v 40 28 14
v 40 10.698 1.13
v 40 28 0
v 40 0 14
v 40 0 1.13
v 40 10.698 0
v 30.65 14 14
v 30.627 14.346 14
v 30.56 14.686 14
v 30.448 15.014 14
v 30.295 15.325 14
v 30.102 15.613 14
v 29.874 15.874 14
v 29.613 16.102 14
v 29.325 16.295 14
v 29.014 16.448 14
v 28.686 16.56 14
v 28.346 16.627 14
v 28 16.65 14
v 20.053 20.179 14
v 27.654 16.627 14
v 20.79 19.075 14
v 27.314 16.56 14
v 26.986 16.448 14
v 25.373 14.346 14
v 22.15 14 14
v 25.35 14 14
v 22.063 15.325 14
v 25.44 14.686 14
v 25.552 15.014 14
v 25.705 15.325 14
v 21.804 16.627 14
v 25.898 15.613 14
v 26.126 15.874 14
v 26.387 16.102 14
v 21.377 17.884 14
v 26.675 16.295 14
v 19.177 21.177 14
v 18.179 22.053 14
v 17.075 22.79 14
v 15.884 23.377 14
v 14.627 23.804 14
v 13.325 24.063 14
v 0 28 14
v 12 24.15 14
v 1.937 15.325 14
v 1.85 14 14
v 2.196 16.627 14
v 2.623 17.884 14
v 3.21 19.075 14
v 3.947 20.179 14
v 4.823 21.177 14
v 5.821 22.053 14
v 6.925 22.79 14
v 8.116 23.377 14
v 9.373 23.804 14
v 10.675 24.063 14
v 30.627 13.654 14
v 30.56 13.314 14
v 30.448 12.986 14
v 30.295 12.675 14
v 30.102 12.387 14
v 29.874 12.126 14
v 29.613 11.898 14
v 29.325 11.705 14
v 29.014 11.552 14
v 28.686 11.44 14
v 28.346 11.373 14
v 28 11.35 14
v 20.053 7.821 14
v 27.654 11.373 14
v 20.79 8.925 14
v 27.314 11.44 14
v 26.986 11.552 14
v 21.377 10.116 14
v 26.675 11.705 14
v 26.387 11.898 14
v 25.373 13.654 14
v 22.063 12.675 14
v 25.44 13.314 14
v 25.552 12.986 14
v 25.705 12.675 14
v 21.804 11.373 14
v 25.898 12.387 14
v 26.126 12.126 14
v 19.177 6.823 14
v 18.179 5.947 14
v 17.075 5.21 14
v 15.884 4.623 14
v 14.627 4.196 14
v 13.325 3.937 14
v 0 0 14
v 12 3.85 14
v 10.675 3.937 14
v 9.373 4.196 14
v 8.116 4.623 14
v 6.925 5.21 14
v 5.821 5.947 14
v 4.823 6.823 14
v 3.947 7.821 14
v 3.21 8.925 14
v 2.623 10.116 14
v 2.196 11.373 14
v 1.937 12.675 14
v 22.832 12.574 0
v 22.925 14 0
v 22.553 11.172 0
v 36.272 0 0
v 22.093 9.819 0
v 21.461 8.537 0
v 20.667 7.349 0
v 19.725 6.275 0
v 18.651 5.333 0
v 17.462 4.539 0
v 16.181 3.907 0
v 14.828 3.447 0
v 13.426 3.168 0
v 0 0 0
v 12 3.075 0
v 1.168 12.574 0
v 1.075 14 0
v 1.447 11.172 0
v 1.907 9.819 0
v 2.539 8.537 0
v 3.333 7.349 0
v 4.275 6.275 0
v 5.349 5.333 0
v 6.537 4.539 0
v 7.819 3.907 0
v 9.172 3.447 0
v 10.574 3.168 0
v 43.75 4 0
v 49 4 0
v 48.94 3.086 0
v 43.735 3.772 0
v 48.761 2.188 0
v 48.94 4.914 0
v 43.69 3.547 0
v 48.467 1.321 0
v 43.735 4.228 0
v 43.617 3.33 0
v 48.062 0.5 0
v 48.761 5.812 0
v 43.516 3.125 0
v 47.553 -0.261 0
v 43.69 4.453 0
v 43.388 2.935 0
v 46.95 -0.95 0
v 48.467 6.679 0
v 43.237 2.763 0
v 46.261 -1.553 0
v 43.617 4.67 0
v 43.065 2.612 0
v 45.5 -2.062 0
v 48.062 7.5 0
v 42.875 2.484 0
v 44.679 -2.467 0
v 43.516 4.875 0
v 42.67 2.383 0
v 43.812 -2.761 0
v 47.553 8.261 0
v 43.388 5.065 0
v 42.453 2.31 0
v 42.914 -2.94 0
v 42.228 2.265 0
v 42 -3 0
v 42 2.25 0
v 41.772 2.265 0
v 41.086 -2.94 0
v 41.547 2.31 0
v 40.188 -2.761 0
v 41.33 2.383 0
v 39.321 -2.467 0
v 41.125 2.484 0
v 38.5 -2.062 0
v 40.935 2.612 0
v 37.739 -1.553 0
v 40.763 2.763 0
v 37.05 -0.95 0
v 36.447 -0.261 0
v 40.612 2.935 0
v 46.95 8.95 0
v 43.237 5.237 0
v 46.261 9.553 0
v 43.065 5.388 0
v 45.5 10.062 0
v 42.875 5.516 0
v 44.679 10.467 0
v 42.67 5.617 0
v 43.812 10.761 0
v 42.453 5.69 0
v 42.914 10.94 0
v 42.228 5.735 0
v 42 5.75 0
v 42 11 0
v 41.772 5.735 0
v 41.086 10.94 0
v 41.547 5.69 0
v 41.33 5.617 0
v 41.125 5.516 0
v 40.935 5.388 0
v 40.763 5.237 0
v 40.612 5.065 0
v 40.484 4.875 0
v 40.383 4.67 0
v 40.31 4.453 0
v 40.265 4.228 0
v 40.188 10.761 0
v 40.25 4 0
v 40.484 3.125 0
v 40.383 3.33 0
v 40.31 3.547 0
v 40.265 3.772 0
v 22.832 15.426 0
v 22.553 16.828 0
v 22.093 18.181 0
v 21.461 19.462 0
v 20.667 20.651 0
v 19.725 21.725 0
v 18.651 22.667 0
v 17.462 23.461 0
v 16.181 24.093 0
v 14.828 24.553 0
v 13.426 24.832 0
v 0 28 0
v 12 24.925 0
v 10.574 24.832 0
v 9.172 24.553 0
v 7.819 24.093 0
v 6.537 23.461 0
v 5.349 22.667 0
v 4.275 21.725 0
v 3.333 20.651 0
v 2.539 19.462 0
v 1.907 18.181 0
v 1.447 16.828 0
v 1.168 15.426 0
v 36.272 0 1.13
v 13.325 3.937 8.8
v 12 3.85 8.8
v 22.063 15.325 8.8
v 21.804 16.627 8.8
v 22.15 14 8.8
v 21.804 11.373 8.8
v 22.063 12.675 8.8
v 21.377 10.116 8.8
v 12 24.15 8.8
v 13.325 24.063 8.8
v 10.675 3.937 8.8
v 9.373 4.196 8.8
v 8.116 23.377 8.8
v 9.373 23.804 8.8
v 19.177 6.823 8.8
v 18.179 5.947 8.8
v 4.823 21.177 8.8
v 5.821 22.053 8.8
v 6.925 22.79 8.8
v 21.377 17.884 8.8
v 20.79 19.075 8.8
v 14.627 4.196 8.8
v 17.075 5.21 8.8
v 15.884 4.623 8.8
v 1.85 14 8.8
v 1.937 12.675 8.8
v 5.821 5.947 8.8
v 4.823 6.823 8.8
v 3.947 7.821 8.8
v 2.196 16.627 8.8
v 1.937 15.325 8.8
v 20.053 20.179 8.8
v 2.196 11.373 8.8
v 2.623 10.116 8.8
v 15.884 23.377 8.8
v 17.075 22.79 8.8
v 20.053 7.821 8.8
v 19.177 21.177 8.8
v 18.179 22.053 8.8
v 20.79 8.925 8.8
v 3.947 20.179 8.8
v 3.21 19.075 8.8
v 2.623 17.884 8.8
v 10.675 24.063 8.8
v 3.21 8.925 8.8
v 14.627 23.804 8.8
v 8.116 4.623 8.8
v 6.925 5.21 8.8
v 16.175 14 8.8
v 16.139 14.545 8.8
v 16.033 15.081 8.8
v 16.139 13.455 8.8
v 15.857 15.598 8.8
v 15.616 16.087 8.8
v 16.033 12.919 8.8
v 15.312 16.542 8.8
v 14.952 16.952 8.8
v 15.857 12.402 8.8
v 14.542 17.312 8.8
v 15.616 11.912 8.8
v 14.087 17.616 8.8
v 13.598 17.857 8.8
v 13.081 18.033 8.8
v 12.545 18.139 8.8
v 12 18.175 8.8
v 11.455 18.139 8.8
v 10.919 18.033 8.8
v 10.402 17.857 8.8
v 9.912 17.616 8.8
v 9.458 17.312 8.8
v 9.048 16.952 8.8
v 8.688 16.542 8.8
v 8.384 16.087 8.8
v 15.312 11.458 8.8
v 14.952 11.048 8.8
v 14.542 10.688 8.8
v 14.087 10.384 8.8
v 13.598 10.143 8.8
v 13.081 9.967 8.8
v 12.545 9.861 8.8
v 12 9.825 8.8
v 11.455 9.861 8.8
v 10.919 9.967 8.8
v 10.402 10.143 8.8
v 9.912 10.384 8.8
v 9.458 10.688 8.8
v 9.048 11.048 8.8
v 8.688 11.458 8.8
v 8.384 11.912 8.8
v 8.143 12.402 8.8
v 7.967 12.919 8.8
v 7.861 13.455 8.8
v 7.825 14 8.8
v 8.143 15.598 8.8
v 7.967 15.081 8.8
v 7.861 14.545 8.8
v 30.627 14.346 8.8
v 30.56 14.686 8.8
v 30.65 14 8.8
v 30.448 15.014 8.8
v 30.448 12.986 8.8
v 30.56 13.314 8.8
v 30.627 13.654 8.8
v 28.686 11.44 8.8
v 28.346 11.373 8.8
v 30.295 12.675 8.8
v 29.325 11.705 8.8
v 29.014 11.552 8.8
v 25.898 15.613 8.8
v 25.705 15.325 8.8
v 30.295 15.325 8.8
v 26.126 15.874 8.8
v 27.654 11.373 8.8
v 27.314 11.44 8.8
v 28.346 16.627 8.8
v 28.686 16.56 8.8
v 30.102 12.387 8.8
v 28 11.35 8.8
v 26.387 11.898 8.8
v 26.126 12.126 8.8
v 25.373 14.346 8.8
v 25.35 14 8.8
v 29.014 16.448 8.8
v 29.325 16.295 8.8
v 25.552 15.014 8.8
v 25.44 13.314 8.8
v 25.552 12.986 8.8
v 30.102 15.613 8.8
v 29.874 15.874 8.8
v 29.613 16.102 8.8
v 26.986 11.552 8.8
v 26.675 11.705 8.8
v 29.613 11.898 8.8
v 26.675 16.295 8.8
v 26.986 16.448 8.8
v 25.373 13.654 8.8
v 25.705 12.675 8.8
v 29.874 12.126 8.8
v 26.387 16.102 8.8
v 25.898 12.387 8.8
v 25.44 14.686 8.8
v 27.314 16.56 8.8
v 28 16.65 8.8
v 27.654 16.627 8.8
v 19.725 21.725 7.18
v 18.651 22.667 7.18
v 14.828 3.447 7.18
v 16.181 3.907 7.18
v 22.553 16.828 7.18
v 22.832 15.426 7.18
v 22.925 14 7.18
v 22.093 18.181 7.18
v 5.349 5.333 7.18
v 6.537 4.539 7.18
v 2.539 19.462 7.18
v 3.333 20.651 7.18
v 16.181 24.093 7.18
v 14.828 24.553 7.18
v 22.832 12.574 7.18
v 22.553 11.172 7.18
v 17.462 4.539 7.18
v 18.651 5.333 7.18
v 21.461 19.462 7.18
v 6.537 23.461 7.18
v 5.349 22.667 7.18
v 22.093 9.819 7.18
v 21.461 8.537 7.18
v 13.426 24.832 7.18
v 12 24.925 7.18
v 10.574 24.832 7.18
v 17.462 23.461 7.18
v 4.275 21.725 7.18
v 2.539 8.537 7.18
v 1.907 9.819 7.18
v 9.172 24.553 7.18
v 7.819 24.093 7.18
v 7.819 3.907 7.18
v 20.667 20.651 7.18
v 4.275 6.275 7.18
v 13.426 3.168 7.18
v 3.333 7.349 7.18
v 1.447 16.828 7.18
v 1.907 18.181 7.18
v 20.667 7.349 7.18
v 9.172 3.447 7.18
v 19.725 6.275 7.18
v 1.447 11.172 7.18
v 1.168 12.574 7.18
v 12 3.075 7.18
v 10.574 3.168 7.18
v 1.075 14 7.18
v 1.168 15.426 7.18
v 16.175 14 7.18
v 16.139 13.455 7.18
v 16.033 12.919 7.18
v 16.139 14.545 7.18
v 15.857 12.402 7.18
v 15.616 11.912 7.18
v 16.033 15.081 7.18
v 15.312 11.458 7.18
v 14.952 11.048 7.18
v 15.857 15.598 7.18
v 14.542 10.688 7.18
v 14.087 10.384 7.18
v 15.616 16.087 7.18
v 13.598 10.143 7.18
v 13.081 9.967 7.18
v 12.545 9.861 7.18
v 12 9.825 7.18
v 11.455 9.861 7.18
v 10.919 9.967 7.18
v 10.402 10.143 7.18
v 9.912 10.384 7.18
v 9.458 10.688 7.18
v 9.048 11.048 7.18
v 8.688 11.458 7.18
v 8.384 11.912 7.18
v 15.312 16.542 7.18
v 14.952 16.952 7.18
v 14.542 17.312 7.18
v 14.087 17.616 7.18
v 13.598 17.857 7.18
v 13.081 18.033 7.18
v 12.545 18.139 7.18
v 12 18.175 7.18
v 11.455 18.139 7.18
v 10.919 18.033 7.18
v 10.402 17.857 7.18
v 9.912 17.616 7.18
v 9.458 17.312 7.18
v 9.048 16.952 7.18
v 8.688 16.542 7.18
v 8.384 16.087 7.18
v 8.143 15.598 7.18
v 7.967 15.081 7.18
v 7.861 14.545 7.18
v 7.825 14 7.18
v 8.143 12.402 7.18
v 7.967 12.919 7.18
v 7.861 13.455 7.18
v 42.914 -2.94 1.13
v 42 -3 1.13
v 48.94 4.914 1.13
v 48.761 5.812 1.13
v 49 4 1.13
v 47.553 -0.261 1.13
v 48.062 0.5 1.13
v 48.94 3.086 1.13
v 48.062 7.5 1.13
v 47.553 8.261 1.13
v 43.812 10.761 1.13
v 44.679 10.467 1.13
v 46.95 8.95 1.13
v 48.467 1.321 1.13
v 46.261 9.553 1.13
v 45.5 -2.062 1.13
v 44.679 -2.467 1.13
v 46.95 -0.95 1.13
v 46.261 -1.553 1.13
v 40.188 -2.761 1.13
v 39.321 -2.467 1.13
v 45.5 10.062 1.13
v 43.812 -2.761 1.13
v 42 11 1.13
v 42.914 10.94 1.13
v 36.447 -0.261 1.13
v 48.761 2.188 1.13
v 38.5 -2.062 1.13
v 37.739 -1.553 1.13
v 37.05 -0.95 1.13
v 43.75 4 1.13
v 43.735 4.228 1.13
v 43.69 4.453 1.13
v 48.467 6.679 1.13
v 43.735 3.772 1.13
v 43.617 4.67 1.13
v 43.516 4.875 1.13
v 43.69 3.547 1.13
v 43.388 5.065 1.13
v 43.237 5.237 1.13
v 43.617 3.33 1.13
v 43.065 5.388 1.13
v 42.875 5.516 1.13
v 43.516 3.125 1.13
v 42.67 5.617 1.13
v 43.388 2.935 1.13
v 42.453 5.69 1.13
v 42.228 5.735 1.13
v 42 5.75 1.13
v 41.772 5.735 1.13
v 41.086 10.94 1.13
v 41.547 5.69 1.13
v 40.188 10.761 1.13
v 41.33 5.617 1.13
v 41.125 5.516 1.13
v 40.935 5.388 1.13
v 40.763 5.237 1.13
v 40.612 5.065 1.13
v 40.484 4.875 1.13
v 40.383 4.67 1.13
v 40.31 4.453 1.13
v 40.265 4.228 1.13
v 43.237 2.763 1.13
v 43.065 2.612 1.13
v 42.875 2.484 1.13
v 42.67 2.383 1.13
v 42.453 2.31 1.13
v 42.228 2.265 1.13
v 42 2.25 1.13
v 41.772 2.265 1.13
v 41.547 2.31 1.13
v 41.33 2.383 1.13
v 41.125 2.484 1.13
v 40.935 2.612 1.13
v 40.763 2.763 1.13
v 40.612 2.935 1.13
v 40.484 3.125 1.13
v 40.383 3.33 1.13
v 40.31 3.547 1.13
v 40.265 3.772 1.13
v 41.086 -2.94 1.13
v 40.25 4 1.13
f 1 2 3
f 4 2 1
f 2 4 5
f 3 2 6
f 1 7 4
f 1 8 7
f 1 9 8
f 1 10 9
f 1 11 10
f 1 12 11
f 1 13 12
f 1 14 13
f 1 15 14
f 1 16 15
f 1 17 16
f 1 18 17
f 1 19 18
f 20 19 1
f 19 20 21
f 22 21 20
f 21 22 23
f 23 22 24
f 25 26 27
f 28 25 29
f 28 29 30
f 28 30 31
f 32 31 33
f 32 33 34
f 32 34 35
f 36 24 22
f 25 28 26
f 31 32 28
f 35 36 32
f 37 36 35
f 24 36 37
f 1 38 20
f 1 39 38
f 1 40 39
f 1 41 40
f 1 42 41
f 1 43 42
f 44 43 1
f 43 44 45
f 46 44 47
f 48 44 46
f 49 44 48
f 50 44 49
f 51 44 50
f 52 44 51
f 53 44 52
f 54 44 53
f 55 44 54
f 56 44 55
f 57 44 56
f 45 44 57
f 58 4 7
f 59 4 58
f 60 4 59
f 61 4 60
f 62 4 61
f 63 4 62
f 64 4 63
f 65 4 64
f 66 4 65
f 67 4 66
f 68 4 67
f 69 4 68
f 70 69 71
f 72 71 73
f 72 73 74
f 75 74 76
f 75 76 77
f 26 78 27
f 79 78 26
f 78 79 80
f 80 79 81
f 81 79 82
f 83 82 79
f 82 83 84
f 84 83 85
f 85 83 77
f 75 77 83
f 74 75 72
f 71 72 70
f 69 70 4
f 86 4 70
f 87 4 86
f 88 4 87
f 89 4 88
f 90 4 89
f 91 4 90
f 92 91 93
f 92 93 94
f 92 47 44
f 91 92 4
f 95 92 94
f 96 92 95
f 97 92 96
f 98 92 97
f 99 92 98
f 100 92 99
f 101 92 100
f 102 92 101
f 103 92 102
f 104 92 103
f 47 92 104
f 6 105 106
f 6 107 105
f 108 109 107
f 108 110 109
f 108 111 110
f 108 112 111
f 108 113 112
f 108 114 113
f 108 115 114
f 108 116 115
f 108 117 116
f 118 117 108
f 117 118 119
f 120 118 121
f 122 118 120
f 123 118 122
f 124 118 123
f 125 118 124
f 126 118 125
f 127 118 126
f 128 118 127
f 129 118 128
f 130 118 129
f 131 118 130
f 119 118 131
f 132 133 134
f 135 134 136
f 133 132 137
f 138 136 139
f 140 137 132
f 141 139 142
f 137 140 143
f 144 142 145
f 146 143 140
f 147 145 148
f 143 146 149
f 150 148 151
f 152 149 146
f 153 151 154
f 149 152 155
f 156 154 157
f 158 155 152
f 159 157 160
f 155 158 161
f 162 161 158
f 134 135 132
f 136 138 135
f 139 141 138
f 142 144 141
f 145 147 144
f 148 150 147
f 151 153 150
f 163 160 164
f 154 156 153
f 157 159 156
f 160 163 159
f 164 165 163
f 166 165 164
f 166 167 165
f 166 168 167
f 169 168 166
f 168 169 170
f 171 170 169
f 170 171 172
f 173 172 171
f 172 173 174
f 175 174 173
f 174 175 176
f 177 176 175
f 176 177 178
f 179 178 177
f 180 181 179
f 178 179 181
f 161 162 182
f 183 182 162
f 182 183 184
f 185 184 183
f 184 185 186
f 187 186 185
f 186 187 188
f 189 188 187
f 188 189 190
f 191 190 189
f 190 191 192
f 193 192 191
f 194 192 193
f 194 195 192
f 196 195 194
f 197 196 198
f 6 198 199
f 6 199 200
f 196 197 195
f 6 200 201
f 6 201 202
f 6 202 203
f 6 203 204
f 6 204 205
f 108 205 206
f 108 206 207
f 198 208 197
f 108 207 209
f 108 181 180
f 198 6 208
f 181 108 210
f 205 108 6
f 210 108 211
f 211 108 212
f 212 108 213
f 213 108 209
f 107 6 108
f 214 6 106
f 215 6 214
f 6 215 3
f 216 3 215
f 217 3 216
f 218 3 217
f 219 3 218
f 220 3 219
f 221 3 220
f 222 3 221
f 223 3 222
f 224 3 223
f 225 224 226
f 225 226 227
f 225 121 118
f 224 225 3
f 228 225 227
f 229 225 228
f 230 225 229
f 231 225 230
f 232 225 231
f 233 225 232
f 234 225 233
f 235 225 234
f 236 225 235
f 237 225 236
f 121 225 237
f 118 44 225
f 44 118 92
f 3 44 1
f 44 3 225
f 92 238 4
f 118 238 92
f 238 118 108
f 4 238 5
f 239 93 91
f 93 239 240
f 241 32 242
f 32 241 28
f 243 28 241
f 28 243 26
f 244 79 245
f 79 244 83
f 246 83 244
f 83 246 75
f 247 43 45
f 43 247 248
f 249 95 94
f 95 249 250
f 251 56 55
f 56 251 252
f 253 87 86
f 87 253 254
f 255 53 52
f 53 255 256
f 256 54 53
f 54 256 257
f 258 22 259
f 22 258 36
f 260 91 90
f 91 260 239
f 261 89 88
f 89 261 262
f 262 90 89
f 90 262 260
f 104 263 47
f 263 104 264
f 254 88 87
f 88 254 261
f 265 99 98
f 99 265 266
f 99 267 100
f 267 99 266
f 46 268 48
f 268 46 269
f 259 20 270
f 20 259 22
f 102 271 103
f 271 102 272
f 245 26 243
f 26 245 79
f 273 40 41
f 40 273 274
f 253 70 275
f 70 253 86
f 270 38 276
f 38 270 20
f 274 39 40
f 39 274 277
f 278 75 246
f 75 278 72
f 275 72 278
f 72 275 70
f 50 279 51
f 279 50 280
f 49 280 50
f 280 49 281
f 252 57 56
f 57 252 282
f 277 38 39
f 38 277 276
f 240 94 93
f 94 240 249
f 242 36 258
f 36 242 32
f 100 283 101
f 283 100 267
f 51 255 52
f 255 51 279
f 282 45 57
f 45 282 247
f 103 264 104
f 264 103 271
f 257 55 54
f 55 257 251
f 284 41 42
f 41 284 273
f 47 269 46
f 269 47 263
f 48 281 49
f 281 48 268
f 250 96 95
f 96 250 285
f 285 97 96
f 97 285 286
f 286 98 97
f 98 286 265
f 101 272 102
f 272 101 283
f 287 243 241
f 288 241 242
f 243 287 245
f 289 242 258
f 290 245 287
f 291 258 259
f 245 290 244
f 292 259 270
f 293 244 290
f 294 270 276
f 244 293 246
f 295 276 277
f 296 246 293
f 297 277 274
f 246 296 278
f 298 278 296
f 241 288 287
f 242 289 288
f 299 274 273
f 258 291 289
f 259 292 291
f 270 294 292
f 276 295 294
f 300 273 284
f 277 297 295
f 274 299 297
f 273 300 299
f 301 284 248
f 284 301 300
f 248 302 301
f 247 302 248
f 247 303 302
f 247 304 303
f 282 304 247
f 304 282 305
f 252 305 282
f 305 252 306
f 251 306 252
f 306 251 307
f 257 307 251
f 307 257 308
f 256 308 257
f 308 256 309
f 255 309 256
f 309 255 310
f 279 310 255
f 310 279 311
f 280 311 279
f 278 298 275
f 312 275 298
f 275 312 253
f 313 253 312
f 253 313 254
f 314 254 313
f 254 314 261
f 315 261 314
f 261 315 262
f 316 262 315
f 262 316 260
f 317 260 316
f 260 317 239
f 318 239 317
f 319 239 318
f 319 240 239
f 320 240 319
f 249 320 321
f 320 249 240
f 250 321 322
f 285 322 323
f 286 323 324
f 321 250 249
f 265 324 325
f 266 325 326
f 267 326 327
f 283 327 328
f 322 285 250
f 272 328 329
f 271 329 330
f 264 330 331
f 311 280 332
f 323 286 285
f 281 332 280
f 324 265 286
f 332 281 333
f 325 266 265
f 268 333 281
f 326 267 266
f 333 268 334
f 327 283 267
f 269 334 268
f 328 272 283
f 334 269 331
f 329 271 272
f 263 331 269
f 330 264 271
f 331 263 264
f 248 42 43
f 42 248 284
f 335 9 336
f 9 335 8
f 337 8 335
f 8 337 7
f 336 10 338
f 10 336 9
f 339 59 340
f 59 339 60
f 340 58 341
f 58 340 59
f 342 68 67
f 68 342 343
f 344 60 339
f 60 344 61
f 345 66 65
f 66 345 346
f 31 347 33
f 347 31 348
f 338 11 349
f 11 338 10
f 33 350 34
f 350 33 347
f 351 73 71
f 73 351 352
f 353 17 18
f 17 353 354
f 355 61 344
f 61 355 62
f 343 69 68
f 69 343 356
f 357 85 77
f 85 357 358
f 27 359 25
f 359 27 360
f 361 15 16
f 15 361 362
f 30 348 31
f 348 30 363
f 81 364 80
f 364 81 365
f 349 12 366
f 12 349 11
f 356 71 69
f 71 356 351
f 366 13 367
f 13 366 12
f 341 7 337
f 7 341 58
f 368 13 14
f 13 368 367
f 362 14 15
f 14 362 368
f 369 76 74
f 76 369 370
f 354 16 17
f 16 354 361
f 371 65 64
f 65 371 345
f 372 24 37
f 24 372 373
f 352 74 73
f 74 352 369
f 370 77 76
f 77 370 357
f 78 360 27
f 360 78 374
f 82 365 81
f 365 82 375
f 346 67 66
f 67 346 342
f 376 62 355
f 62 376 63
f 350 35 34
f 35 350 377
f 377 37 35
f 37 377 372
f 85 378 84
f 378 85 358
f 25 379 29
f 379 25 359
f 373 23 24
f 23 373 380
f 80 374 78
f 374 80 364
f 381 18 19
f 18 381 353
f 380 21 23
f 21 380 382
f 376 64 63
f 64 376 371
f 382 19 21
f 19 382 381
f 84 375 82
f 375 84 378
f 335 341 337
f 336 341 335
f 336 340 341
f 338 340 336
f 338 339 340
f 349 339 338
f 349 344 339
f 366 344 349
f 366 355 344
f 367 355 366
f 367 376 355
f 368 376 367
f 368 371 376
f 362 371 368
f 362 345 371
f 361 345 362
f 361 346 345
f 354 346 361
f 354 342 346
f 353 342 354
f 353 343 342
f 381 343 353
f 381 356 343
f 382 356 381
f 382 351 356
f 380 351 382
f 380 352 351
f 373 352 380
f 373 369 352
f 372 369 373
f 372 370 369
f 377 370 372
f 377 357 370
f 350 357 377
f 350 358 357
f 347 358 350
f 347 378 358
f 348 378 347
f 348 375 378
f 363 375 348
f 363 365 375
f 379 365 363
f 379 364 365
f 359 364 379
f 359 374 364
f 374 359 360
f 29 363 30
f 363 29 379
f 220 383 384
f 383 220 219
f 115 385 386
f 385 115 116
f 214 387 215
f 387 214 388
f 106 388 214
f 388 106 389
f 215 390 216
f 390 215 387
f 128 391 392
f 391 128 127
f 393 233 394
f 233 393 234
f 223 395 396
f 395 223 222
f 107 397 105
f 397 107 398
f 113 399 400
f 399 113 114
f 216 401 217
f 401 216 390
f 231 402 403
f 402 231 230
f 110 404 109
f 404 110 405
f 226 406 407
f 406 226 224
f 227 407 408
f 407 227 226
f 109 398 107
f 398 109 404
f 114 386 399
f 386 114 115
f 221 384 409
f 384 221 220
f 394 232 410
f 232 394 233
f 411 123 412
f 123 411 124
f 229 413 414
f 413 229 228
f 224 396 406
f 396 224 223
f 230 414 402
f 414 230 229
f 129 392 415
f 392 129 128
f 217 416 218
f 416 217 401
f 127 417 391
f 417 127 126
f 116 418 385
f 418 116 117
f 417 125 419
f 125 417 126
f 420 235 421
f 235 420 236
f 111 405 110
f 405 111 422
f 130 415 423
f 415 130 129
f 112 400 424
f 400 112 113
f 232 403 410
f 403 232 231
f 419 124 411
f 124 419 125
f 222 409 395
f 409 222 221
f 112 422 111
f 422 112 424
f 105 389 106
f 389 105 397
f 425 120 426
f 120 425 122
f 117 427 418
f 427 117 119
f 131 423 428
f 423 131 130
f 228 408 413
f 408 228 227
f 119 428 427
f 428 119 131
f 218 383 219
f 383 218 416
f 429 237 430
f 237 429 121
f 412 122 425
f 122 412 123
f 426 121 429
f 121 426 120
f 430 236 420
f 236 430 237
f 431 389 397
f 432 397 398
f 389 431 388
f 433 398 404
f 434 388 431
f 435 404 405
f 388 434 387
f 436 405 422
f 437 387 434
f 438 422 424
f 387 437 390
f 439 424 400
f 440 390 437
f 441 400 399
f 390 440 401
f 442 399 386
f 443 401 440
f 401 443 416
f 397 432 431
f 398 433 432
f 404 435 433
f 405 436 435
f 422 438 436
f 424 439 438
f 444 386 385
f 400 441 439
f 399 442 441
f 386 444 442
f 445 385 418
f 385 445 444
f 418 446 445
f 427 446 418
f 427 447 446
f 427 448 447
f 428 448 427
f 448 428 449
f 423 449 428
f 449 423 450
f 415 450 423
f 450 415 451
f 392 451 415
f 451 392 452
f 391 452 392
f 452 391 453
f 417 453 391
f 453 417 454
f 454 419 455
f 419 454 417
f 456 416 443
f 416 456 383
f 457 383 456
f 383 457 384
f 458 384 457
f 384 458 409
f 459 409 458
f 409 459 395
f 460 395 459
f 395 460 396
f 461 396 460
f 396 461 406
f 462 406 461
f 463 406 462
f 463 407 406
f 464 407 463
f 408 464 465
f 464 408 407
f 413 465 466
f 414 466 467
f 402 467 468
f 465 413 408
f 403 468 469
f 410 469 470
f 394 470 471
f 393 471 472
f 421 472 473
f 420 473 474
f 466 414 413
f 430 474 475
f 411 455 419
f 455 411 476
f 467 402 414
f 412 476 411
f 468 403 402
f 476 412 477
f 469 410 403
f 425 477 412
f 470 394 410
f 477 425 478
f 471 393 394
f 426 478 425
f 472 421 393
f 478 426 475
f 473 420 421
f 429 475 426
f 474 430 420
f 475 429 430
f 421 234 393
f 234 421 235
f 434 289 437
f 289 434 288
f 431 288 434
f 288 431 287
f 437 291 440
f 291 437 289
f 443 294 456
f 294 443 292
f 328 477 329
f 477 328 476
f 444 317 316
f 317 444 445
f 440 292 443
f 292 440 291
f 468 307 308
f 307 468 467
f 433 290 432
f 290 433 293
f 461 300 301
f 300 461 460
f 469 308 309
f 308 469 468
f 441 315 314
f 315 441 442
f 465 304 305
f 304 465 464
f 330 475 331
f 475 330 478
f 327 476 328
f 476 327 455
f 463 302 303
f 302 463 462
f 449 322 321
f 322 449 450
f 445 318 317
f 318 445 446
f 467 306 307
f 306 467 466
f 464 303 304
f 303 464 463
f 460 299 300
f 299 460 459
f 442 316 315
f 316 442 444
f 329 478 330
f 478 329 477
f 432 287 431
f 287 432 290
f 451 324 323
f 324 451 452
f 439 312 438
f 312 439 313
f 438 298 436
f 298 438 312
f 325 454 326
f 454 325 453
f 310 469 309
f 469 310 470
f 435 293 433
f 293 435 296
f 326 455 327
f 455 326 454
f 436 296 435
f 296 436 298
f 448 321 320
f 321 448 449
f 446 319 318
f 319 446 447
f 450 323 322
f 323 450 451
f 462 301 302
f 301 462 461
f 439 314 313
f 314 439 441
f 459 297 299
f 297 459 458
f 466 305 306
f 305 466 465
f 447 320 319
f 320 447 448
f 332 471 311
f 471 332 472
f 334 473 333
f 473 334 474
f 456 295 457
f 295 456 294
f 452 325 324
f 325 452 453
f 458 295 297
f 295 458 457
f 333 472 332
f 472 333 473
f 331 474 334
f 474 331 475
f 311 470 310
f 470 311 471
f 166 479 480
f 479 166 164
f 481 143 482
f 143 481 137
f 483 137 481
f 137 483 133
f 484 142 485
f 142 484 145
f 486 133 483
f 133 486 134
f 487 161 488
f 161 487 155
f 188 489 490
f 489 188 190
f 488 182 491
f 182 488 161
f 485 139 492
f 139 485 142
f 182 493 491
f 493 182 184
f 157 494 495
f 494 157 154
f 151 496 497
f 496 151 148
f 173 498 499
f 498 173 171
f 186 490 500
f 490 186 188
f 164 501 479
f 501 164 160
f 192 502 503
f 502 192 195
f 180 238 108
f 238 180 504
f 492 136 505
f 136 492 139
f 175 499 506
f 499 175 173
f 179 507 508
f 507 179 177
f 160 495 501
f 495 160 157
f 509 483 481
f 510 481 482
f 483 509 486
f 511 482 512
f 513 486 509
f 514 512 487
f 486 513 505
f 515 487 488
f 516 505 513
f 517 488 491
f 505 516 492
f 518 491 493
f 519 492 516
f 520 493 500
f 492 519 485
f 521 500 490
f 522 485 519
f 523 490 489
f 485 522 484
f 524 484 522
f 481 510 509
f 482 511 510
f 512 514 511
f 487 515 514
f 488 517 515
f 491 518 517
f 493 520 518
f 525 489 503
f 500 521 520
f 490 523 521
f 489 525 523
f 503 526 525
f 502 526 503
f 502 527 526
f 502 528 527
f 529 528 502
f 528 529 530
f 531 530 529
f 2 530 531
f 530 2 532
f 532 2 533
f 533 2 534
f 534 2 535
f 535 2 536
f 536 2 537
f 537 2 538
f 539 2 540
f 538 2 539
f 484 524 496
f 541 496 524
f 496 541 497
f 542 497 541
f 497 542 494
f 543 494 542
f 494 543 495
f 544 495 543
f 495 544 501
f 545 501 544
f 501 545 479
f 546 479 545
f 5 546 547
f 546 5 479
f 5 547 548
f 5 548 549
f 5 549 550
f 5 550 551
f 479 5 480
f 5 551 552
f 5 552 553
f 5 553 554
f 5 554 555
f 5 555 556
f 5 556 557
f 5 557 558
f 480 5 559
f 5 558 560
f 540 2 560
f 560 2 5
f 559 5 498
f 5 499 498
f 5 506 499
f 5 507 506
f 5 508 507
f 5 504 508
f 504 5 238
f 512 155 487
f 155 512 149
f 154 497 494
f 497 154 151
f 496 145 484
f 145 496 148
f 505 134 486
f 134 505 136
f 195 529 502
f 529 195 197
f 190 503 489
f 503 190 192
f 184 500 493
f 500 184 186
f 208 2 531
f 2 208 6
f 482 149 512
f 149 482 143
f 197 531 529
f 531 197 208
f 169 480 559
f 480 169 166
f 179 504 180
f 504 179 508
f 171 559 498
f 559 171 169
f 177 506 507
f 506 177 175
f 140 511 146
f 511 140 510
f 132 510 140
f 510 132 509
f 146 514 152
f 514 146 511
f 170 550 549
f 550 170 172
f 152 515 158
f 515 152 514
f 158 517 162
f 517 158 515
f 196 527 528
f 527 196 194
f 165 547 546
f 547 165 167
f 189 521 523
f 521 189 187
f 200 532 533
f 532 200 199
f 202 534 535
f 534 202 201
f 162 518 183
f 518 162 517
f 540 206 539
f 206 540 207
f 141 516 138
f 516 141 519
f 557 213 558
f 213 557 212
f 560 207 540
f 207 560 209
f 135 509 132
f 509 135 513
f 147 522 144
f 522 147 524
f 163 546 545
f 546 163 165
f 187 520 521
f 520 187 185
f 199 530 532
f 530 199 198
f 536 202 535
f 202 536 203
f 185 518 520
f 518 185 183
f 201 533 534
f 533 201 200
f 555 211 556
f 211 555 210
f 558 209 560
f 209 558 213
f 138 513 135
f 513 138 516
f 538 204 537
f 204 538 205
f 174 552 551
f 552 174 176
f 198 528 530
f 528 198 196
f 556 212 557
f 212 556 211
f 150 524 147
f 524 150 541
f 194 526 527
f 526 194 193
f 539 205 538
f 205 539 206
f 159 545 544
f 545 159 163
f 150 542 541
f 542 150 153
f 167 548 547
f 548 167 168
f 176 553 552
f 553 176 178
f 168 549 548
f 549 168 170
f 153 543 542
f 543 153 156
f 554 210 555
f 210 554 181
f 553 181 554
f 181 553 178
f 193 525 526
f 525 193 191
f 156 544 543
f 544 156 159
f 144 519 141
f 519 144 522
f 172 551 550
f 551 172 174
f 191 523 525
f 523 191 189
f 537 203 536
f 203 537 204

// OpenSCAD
// file: parameters.scad
// =============================================================================
// Gen-AI Stacked dual-stator mid-rotor copper-max — WOUND-AWARE (HARD GATE)
// ONE mid dual-face Halbach rotor | TWO wound pancake stators | 18 coils ×145 t
// =============================================================================

wire_awg            = 26;
wire_od             = 0.45;
turns               = 145;      // 9 coils/stator ×2 = 18 ×145 ×~0.122 ≈ 318 m
fill                = 0.70;
layers_per_face     = 2;
wind_build_axial    = layers_per_face * wire_od * fill;   // 0.63
wind_build_radial   = 3 * wire_od * fill;                 // 0.945

coil_id_r           = 19.0;
coil_od_r           = 64.0;
span_deg            = 34.0;     // 9 stations × 40°
former_web          = 1.50;
flange_t            = 0.60;
wall                = 1.2;
slot_w              = 2.4;
mount_hole          = 3.5;
tab_len             = 7.0;

former_bare_h       = former_web + 2 * flange_t;            // 2.70
coil_envelope_h     = former_bare_h + 2 * wind_build_axial; // 3.96

run_clear           = 0.52;
gap_spacer_h        = run_clear + wind_build_axial;         // 1.15
m2m                 = coil_envelope_h + 2 * run_clear;      // 5.00 per gap

coil_stations       = 9;        // per stator; ×2 = 18 total
bay_r_in            = coil_id_r - 2.0 - wind_build_radial;
bay_r_out           = coil_od_r + 2.0 + wind_build_radial;
bay_span            = span_deg + 4.0;
bay_offset          = 2.0;
bay_depth           = former_bare_h + wind_build_axial;     // wound sits in bay
stator_back_web     = 2.0;
stator_thick        = bay_depth + stator_back_web;
stator_od           = 156.0;
shaft_clear_stator  = 38.0;
coil_mount_r        = 28.0;

large_pocket_d      = 20.3;
small_pocket_d      = 5.3;
pocket_h            = 5.2;
large_n             = 8;
R_large             = 42.0;
R_small_inner       = 28.0;
R_small_mid         = 42.0;
R_small_outer       = 58.0;
carrier_od          = 154.0;
mid_carrier_thick   = 12.0;
hub_h               = 10.0;
hub_od              = 30.0;
rotor_b_offset_deg  = 22.5;

shaft_bore          = 8.35;
bearing_d           = 21.85;
bearing_h           = 7.2;
m3_clear            = 3.5;
bolt_r_inner        = 36.0;
bolt_n_inner        = 6;
flange_bolt_r       = 72.0;
flange_bolt_n       = 6;
brace_r             = 68.0;
brace_d             = 4.3;
brace_n             = 4;

spacer_pad_od       = 14.0;
spacer_pad_id       = m3_clear;
endbell_od          = 156.0;
endbell_thick       = 8.0;
endbell_shaft_clear = 10.0;

$fn = 64;
// main file
// Gen-AI fit coupon — magnet pockets + 608 + spacer height
include <parameters.scad>;
$fn = 48;
block_w = 40; block_d = 28; block_h = 14;
difference() {
    cube([block_w, block_d, block_h]);
    translate([12, block_d/2, block_h - pocket_h])
        cylinder(d=large_pocket_d, h=pocket_h + 0.2);
    translate([28, block_d/2, block_h - pocket_h])
        cylinder(d=small_pocket_d, h=pocket_h + 0.2);
    translate([12, block_d/2, -0.02])
        cylinder(d=bearing_d, h=bearing_h);
    translate([12, block_d/2, -0.1])
        cylinder(d=shaft_bore, h=block_h + 1);
}
translate([block_w + 2, 4, 0])
    difference() {
        cylinder(d=spacer_pad_od, h=gap_spacer_h);
        translate([0, 0, -0.1]) cylinder(d=spacer_pad_id, h=gap_spacer_h + 0.2);
    }
